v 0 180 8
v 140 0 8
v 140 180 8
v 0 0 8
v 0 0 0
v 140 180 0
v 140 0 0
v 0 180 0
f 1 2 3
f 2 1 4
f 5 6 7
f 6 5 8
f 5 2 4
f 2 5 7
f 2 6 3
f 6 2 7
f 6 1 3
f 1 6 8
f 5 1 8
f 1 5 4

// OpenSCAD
// Parameters
table_width = 140;
table_length = 180;
table_thickness = 8;

cube([table_width, table_length, table_thickness]);
